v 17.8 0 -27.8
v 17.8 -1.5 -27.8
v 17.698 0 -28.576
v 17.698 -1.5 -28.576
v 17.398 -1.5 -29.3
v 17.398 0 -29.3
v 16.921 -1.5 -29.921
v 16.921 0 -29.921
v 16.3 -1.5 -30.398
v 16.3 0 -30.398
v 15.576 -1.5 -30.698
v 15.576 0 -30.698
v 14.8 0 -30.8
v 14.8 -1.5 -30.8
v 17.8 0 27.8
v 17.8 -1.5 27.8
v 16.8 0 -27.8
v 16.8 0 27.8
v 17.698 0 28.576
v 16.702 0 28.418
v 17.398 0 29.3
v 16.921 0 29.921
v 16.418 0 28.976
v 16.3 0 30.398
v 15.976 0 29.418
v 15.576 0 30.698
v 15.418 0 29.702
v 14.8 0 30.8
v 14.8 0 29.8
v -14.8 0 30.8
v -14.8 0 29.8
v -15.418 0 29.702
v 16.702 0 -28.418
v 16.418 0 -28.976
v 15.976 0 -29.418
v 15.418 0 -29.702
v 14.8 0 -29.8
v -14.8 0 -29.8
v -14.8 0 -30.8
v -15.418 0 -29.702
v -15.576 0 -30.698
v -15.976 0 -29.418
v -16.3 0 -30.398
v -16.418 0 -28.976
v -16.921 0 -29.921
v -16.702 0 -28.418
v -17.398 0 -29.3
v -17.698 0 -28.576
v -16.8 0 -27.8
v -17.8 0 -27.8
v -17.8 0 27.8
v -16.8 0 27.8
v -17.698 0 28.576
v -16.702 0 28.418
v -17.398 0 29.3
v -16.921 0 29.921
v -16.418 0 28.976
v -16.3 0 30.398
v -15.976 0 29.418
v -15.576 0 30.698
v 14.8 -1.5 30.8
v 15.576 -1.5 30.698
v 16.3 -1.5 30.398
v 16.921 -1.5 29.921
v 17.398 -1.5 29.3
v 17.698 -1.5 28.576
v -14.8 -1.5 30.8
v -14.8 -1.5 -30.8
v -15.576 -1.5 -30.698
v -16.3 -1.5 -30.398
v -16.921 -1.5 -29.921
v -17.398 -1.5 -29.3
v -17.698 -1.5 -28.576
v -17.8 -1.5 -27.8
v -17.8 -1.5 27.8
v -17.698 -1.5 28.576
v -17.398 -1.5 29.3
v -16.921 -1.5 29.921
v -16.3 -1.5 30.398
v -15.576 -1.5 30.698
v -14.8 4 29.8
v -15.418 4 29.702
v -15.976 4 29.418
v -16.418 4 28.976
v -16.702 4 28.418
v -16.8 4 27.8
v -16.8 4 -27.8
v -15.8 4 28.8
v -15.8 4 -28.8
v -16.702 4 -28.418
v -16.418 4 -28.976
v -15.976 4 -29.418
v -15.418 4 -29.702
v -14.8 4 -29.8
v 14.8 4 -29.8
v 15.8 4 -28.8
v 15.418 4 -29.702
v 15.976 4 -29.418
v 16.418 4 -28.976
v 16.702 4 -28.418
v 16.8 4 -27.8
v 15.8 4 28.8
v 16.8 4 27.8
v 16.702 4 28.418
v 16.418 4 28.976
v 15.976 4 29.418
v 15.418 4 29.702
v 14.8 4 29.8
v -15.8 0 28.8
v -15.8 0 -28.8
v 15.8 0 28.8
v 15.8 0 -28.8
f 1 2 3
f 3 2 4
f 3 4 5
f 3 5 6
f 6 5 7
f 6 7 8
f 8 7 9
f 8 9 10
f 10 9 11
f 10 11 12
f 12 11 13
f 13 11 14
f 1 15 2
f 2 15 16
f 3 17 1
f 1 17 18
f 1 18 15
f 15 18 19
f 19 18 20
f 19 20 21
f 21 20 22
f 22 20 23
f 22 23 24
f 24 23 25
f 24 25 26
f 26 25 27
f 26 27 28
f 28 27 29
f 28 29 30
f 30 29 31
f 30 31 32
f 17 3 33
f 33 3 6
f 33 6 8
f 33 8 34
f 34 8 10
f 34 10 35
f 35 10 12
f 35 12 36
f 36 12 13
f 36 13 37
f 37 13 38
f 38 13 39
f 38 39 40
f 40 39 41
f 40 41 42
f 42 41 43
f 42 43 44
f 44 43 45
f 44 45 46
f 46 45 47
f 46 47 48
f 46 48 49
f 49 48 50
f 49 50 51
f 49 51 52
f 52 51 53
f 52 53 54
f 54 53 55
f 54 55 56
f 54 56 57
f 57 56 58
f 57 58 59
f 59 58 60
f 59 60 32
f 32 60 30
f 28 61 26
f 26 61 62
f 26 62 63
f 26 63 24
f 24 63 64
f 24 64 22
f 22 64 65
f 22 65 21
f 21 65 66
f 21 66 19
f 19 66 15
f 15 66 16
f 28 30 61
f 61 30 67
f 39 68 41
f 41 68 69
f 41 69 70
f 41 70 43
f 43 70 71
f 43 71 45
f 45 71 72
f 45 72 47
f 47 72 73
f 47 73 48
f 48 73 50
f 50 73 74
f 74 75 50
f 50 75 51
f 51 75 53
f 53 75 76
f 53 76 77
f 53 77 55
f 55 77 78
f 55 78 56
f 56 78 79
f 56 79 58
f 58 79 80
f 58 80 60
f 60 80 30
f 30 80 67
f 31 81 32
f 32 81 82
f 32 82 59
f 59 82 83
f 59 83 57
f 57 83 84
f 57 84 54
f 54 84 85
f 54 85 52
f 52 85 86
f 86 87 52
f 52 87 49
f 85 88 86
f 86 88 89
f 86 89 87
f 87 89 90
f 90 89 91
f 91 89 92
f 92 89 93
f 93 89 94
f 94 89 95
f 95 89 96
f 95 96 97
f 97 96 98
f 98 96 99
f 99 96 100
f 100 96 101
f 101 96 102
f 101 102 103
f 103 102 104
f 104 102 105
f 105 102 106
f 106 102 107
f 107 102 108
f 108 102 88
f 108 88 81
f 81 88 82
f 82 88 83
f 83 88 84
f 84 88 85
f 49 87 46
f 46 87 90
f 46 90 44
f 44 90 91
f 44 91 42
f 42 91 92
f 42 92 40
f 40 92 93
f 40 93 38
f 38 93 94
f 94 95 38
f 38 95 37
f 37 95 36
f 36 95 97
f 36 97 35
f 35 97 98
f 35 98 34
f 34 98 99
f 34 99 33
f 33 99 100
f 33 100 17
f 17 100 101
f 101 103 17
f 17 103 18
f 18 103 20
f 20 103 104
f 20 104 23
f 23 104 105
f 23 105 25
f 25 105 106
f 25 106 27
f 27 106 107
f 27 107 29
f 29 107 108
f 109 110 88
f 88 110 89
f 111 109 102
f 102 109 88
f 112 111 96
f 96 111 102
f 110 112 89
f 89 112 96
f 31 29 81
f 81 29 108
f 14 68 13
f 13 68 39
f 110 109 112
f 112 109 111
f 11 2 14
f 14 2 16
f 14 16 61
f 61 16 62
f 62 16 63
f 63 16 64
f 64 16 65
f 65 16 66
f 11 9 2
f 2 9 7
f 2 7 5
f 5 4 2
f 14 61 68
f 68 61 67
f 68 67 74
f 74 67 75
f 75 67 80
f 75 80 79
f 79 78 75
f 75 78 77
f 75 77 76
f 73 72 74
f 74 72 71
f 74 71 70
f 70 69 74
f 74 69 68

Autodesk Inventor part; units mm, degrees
ref_plane "YZ Plane" through (0, 0, 0) normal (1, 0, 0) x (0, 1, 0)
ref_plane "XZ Plane" through (0, 0, 0) normal (0, 1, 0) x (-1, 0, 0)
ref_plane "XY Plane" through (0, 0, 0) normal (0, 0, 1) x (1, 0, 0)
sketch "スケッチ1" plane through (0, 0, 0) normal (0, 1, 0) x (-1, 0, 0)
  line L0 (15.5, -28.5) -> (-15.5, -28.5)
  line L1 (-15.5, -28.5) -> (-15.5, 28.5)
  line L2 (-15.5, 28.5) -> (15.5, 28.5)
  line L3 (15.5, 28.5) -> (15.5, -28.5)
  line L4 (15.5, -28.5) -> (-15.5, 28.5) construction
  line L5 (-15.5, -28.5) -> (15.5, 28.5) construction
  line L6 (15.8, -28.8) -> (-15.8, -28.8)
  line L7 (-15.8, -28.8) -> (-15.8, 28.8)
  line L8 (-15.8, 28.8) -> (15.8, 28.8)
  line L9 (15.8, 28.8) -> (15.8, -28.8)
  line L10 (16.8, -29.8) -> (-16.8, -29.8)
  line L11 (-16.8, -29.8) -> (-16.8, 29.8)
  line L12 (-16.8, 29.8) -> (16.8, 29.8)
  line L13 (16.8, 29.8) -> (16.8, -29.8)
  line L14 (17.8, -30.8) -> (-17.8, -30.8)
  line L15 (-17.8, -30.8) -> (-17.8, 30.8)
  line L16 (-17.8, 30.8) -> (17.8, 30.8)
  line L17 (17.8, 30.8) -> (17.8, -30.8)
  point P0 (0, 0)
  dimension "d0" = 31
  dimension "d1" = 57
  dimension "d2" = 0.3
  dimension "d3" = 1
  dimension "d4" = 1
extrude "押し出し1" add sketch "スケッチ1" against normal blind 1.5 contours L0 L1 L2 L3 | L6 L7 L8 L9 | L10 L11 L12 L13 | L14 L15 L16 L17
extrude "押し出し2" add sketch "スケッチ1" along normal blind 4 contours L10 L11 L12 L13
fillet "フィレット1" radius 2 4 edges at (16.8, 2, 29.8) (16.8, 2, -29.8) (-16.8, 2, -29.8) (-16.8, 2, 29.8)
fillet "フィレット2" radius 3 4 edges at (-17.8, -0.75, 30.8) (-17.8, -0.75, -30.8) (17.8, -0.75, 30.8) (17.8, -0.75, -30.8)
sketch "スケッチ2" plane through (0, 0, 0) normal (0, 1, 0) x (1, 0, 0)
  point P0 (0, 0)
